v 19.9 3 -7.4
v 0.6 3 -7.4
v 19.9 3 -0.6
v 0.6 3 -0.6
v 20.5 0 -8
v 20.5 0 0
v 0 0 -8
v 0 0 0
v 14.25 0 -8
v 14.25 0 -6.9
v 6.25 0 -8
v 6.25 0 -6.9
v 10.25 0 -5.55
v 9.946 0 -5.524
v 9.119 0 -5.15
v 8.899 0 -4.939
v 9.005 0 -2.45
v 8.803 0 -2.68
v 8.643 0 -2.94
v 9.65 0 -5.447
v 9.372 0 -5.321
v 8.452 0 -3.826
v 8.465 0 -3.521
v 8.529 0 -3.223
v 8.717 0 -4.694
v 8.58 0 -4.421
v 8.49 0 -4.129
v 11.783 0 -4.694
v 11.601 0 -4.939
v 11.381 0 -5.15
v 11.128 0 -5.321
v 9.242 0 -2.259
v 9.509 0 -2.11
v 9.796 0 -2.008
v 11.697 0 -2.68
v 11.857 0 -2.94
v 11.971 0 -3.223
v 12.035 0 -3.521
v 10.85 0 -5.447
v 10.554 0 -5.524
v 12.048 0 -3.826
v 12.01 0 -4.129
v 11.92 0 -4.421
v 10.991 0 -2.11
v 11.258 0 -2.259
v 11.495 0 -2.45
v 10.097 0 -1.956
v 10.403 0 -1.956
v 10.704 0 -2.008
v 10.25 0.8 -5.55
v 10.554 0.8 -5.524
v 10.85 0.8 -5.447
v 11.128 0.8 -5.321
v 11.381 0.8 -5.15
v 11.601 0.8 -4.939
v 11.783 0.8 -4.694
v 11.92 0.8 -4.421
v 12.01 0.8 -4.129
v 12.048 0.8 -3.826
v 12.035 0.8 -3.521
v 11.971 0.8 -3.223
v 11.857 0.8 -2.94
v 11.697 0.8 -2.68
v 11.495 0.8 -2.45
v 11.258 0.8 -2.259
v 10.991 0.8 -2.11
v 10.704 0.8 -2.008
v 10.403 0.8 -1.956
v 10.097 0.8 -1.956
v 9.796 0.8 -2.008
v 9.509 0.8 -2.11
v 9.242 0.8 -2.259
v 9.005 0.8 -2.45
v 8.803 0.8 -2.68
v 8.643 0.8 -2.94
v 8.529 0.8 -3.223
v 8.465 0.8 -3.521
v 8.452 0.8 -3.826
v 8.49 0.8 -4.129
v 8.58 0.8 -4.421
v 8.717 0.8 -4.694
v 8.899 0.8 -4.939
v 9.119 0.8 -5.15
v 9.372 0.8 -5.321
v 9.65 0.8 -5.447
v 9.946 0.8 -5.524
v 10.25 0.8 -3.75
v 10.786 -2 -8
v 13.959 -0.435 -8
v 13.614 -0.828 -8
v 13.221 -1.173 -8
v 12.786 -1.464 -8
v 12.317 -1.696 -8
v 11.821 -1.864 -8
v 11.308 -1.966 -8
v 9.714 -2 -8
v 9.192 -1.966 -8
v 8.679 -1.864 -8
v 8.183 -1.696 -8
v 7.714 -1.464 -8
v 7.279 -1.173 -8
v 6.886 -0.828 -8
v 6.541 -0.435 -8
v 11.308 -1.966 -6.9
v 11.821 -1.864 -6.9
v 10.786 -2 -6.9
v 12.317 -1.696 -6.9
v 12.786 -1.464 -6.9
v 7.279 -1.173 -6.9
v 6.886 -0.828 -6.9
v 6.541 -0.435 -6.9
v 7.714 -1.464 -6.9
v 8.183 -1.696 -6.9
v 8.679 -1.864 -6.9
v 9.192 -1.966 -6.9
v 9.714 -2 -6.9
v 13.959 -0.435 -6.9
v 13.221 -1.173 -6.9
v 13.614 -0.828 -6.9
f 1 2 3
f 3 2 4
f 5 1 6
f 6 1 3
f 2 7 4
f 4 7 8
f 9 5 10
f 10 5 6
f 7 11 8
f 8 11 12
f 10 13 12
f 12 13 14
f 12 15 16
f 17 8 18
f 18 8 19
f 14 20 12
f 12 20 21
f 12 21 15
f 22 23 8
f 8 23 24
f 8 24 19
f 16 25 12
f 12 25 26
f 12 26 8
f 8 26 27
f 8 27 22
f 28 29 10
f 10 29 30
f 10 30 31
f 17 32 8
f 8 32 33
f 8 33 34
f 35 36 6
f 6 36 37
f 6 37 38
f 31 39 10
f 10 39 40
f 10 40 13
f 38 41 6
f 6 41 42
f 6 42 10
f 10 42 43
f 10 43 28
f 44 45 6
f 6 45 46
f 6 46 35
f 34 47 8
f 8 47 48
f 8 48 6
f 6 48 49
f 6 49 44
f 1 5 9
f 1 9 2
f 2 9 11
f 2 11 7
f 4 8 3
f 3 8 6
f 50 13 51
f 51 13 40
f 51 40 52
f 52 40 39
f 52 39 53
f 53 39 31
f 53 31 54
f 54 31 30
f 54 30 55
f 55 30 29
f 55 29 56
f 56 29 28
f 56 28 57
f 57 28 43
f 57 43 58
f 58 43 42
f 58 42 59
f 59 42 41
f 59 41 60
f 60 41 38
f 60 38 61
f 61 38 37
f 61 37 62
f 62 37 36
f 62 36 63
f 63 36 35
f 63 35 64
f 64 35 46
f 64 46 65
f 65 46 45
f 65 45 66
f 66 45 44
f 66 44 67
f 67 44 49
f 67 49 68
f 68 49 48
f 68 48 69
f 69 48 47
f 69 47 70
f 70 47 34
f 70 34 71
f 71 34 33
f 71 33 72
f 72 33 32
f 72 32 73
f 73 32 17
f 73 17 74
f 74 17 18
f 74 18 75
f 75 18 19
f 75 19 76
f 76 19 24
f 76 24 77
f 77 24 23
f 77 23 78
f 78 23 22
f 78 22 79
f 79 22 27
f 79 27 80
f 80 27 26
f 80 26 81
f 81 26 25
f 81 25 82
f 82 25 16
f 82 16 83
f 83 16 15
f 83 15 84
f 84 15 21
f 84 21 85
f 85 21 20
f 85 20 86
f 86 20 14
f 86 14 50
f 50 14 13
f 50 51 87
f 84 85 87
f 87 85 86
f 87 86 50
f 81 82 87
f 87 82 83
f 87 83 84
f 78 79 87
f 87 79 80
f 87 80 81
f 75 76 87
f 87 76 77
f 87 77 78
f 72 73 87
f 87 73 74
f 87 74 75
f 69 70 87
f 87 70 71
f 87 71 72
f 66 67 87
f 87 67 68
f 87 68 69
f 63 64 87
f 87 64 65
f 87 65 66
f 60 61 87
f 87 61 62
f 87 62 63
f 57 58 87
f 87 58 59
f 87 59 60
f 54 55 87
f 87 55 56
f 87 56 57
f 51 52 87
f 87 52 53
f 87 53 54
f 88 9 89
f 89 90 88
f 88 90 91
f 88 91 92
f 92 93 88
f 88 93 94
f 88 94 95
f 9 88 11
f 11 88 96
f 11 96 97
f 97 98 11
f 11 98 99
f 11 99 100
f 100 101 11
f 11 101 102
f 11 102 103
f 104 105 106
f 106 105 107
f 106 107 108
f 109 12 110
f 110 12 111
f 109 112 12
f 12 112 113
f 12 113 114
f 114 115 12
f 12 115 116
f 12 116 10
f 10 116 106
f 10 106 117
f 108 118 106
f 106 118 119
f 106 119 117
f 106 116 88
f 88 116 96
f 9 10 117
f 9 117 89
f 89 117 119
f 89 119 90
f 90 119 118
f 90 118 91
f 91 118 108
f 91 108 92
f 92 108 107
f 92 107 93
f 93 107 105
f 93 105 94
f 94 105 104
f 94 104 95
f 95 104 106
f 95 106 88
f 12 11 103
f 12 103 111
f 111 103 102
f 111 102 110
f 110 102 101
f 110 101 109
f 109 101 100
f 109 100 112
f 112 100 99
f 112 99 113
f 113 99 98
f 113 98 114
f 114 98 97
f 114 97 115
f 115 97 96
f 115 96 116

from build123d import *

# Parameters (mm, degrees)
SKETCH1_W               = 20.5
SKETCH1_H               = 8
BOSS_EXTRUDE1_DEPTH     = 3
CUT_EXTRUDE1_DEPTH      = 23.209232315
CUT_EXTRUDE1_DEPTH_BACK = 23.209232315
CUT_EXTRUDE2_DEPTH      = 23.209232315
CUT_EXTRUDE2_DEPTH_BACK = 23.209232315
SKETCH4_R               = 1.8
CUT_EXTRUDE3_DEPTH      = 0.8
SKETCH5_W               = 8
SKETCH5_H               = 1.1
BOSS_EXTRUDE2_DEPTH     = 2
FILLET1_R               = 4


with BuildPart() as part:
    # Sketch1 → Boss-Extrude1 (new body)
    with BuildSketch(Plane(origin=(0, 0, 0), x_dir=(1, 0, 0), z_dir=(0, 1, 0))):
        with Locations((10.25, 4)):
            Rectangle(SKETCH1_W, SKETCH1_H)
    extrude(amount=BOSS_EXTRUDE1_DEPTH)

    # Sketch2 → Cut-Extrude1 (cut, two sides: drawn at the far end of the back side and taken through both)
    with BuildSketch(Plane.XY.offset(-CUT_EXTRUDE1_DEPTH_BACK)):
        Polygon((0, 0), (0.6, 3), (0, 3), align=None)
        Polygon((20.5, 0), (19.9, 3), (20.5, 3), align=None)
    extrude(amount=CUT_EXTRUDE1_DEPTH + CUT_EXTRUDE1_DEPTH_BACK, mode=Mode.SUBTRACT)

    # Sketch3 → Cut-Extrude2 (cut, two sides: drawn at the far end of the back side and taken through both)
    with BuildSketch(Plane(origin=(0, 0, 0), x_dir=(0, 0, -1), z_dir=(1, 0, 0)).offset(-CUT_EXTRUDE2_DEPTH_BACK)):
        Polygon((0, 0), (0.6, 3), (0, 3), align=None)
        Polygon((8, 3), (7.4, 3), (8, 0), align=None)
    extrude(amount=CUT_EXTRUDE2_DEPTH + CUT_EXTRUDE2_DEPTH_BACK, mode=Mode.SUBTRACT)

    # Sketch4 → Cut-Extrude3 (cut)
    with BuildSketch(Plane.XZ):
        with Locations(Location((10.25000125, -3.75, 0), (0, 0, 270))):
            Circle(SKETCH4_R)
    extrude(amount=-CUT_EXTRUDE3_DEPTH, mode=Mode.SUBTRACT)

    # Sketch5 → Boss-Extrude2 (add)
    with BuildSketch(Plane.XZ):
        with Locations((10.250011, -7.45)):
            Rectangle(SKETCH5_W, SKETCH5_H)
    extrude(amount=BOSS_EXTRUDE2_DEPTH)

    # Fillet1
    # the kernel refuses this fillet: 4 mm, written as the material it takes off along each edge
    with BuildSketch(Plane(origin=(14.250011, -2, -16.660254038), x_dir=(0, 1, 0), z_dir=(0, 0, 1)), Plane(origin=(6.250011, -2, 1.760254038), x_dir=(0, 1, 0), z_dir=(0, 0, -1))) as fillet1_piece_1:
        with BuildLine():
            CenterArc((4, 3.464101615), FILLET1_R, 180, 60)
            Line((0, 3.464101615), (-0.08, 3.464101615))
            Line((-0.08, 3.464101615), (-0.08, 0))
            Line((-0.08, 0), (0, -0.08))
            ThreePointArc((0, -0.08), (1, -0.08), (1.96, -0.069282032))
            Line((1.96, -0.069282032), (2, 0))
        make_face()
    extrude(amount=18.420508076, mode=Mode.SUBTRACT)


solid = part.part
